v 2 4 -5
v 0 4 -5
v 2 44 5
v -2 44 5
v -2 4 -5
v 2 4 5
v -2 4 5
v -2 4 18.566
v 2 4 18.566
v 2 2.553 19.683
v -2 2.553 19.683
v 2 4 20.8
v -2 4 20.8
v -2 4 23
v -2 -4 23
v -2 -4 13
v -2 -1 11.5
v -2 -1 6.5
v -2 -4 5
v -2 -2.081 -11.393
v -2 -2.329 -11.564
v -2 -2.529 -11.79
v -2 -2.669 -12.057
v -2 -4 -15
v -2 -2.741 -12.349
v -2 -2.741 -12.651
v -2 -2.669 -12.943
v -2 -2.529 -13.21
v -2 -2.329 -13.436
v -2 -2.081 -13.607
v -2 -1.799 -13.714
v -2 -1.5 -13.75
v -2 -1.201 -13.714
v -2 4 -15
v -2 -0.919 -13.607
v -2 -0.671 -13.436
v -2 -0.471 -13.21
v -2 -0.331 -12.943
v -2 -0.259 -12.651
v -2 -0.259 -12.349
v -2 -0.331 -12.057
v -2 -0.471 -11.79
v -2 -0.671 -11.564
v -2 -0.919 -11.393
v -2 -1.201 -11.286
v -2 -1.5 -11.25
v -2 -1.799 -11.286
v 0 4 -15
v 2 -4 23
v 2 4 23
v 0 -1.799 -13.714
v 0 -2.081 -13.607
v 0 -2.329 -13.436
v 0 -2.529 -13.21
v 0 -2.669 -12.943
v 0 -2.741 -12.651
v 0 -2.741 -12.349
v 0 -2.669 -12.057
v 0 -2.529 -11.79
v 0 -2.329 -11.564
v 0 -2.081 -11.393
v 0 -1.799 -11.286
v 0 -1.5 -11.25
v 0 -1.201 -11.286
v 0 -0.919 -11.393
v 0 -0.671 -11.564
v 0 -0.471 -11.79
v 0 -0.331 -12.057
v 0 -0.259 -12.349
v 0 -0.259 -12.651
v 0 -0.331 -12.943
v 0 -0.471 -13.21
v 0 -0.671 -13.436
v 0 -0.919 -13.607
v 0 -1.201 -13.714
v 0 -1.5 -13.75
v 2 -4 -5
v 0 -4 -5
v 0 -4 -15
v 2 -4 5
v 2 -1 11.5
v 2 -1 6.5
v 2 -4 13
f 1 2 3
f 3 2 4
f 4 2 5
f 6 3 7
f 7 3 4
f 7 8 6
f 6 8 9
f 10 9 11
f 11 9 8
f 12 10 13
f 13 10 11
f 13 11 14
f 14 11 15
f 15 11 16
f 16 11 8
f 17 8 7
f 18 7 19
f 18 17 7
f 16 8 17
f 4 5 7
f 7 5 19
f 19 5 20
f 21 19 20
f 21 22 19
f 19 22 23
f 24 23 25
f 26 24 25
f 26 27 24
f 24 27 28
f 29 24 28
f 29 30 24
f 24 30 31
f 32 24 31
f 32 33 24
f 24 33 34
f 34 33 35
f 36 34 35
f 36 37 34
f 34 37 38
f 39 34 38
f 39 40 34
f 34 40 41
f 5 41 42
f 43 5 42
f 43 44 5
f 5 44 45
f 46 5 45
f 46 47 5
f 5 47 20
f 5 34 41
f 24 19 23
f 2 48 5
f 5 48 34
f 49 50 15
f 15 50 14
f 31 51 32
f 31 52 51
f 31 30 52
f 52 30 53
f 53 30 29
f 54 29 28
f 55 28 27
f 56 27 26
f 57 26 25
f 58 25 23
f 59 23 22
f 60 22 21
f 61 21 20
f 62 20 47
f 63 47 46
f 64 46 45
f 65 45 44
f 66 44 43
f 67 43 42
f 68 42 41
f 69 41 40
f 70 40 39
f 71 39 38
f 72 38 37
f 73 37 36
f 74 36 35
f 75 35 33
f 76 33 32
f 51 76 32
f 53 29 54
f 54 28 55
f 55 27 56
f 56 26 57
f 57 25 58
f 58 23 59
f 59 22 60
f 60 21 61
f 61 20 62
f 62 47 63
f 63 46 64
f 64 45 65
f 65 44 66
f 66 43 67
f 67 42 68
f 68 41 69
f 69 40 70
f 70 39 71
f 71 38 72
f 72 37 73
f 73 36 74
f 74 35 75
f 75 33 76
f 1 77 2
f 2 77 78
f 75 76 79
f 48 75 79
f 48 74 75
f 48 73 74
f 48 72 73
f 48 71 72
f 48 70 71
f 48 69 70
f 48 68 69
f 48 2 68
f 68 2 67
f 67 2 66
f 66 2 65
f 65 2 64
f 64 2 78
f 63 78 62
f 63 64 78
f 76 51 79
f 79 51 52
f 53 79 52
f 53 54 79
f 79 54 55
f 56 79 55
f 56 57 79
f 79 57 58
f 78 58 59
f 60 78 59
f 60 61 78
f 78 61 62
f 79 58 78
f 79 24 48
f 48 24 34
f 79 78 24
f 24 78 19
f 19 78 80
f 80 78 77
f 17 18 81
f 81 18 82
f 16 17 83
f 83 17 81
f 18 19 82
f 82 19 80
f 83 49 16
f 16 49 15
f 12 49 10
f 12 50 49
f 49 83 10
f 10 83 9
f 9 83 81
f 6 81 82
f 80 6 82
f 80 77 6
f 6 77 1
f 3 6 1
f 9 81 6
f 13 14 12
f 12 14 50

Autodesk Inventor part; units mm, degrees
ref_plane "YZ Plane" through (0, 0, 0) normal (1, 0, 0) x (0, 1, 0)
ref_plane "XZ Plane" through (0, 0, 0) normal (0, 1, 0) x (-1, 0, 0)
ref_plane "XY Plane" through (0, 0, 0) normal (0, 0, 1) x (1, 0, 0)
sketch "スケッチ1" plane through (0, 0, 0) normal (0, 1, 0) x (-1, 0, 0)
  line L0 (-2, 15) -> (2, 15)
  line L1 (2, 15) -> (2, -15)
  line L2 (2, -15) -> (-2, -15)
  line L3 (-2, -15) -> (-2, 15)
  line L4 (-2, 15) -> (2, -15) construction
  line L5 (2, 15) -> (-2, -15) construction
  point P0 (0, 0)
  dimension "d0" = 4
  dimension "d1" = 30
extrude "押し出し1" add sketch "スケッチ1" along normal mid plane 8
sketch "スケッチ2" plane through (2, -4, -15) normal (1, 0, 0) x (0, 0, -1)
  line L0 (0, 0) -> (-30, 0) projected
  line L1 (-28, 0) -> (-26.5, 3)
  line L2 (-26.5, 3) -> (-21.5, 3)
  line L3 (-21.5, 3) -> (-20, 0)
  line L4 (-30, 0) -> (-30, 8) projected
  line L5 (-28, 0) -> (-20, 0)
  point P0 (-15, 4)
  dimension "d4" = 5
  dimension "d5" = 3
  dimension "d6" = 2
  dimension "d7" = 10
  dimension "d8" = 3.5
extrude "押し出し2" cut sketch "スケッチ2" against normal blind 5
sketch "スケッチ6" plane through (2, -4, -15) normal (1, 0, 0) x (0, 0, -1)
  line L0 (0, 0) -> (-20, 0) projected
  line L1 (0, 0) -> (-10, 0)
  line L2 (-10, 0) -> (-10, 8)
  line L3 (-10, 8) -> (0, 8)
  line L4 (0, 8) -> (0, 0)
  point P0 (-15, 4)
  dimension "d22" = 10
  dimension "d23" = 8
extrude "押し出し6" cut sketch "スケッチ6" against normal blind 2
sketch "スケッチ7" plane through (0, -4, -15) normal (1, 0, 0) x (0, 0, -1)
  circle A0 centre (-2.5, 2.5) radius 1.25
  line L0 (0, 8) -> (0, 0) projected
  point P0 (-15, 4)
  dimension "d26" = 2.5
  dimension "d27" = 2.5
extrude "押し出し7" cut sketch "スケッチ7" against normal blind 2
sketch "スケッチ9" plane through (2, -4, 15) normal (1, 0, 0) x (0, 0, -1)
  line L0 (0, 8) -> (-8, 8)
  line L1 (-8, 8) -> (-8, 0)
  line L2 (-8, 0) -> (0, 0)
  line L3 (0, 0) -> (0, 8)
  point P0 (15, 4)
  dimension "d30" = 8
extrude "押し出し8" add sketch "スケッチ9" against normal blind 4
sketch "スケッチ10" plane through (2, -1, 11.5) normal (1, 0, 0) x (0, 0, -1)
  line L0 (26.5, 5) -> (-11.5, 5) projected
  line L1 (-9.2998, 5) -> (-8.1827, 3.5534)
  line L2 (-8.1827, 3.5534) -> (-7.0655, 5)
  line L3 (-9.2998, 5) -> (-7.0655, 5)
  point P0 (11.5, 1)
extrude "押し出し9" cut sketch "スケッチ10" against normal blind 4
sketch "スケッチ11" plane through (2, -1, 11.5) normal (1, 0, 0) x (0, 0, -1)
  line L0 (16.5, 5) -> (-7.0655, 5) projected
  line L1 (6.5, 5) -> (6.5, 45)
  line L2 (6.5, 5) -> (46.5, 5) construction
  line L3 (6.5, 45) -> (16.5, 5)
  line L4 (16.5, 5) -> (6.5, 5)
  point P0 (11.5, 1)
  dimension "d35" = 40
  dimension "d36" = 90
  dimension "d39" = 10
extrude "押し出し10" add sketch "スケッチ11" against normal blind 4
properties part number "promo_hold2"
